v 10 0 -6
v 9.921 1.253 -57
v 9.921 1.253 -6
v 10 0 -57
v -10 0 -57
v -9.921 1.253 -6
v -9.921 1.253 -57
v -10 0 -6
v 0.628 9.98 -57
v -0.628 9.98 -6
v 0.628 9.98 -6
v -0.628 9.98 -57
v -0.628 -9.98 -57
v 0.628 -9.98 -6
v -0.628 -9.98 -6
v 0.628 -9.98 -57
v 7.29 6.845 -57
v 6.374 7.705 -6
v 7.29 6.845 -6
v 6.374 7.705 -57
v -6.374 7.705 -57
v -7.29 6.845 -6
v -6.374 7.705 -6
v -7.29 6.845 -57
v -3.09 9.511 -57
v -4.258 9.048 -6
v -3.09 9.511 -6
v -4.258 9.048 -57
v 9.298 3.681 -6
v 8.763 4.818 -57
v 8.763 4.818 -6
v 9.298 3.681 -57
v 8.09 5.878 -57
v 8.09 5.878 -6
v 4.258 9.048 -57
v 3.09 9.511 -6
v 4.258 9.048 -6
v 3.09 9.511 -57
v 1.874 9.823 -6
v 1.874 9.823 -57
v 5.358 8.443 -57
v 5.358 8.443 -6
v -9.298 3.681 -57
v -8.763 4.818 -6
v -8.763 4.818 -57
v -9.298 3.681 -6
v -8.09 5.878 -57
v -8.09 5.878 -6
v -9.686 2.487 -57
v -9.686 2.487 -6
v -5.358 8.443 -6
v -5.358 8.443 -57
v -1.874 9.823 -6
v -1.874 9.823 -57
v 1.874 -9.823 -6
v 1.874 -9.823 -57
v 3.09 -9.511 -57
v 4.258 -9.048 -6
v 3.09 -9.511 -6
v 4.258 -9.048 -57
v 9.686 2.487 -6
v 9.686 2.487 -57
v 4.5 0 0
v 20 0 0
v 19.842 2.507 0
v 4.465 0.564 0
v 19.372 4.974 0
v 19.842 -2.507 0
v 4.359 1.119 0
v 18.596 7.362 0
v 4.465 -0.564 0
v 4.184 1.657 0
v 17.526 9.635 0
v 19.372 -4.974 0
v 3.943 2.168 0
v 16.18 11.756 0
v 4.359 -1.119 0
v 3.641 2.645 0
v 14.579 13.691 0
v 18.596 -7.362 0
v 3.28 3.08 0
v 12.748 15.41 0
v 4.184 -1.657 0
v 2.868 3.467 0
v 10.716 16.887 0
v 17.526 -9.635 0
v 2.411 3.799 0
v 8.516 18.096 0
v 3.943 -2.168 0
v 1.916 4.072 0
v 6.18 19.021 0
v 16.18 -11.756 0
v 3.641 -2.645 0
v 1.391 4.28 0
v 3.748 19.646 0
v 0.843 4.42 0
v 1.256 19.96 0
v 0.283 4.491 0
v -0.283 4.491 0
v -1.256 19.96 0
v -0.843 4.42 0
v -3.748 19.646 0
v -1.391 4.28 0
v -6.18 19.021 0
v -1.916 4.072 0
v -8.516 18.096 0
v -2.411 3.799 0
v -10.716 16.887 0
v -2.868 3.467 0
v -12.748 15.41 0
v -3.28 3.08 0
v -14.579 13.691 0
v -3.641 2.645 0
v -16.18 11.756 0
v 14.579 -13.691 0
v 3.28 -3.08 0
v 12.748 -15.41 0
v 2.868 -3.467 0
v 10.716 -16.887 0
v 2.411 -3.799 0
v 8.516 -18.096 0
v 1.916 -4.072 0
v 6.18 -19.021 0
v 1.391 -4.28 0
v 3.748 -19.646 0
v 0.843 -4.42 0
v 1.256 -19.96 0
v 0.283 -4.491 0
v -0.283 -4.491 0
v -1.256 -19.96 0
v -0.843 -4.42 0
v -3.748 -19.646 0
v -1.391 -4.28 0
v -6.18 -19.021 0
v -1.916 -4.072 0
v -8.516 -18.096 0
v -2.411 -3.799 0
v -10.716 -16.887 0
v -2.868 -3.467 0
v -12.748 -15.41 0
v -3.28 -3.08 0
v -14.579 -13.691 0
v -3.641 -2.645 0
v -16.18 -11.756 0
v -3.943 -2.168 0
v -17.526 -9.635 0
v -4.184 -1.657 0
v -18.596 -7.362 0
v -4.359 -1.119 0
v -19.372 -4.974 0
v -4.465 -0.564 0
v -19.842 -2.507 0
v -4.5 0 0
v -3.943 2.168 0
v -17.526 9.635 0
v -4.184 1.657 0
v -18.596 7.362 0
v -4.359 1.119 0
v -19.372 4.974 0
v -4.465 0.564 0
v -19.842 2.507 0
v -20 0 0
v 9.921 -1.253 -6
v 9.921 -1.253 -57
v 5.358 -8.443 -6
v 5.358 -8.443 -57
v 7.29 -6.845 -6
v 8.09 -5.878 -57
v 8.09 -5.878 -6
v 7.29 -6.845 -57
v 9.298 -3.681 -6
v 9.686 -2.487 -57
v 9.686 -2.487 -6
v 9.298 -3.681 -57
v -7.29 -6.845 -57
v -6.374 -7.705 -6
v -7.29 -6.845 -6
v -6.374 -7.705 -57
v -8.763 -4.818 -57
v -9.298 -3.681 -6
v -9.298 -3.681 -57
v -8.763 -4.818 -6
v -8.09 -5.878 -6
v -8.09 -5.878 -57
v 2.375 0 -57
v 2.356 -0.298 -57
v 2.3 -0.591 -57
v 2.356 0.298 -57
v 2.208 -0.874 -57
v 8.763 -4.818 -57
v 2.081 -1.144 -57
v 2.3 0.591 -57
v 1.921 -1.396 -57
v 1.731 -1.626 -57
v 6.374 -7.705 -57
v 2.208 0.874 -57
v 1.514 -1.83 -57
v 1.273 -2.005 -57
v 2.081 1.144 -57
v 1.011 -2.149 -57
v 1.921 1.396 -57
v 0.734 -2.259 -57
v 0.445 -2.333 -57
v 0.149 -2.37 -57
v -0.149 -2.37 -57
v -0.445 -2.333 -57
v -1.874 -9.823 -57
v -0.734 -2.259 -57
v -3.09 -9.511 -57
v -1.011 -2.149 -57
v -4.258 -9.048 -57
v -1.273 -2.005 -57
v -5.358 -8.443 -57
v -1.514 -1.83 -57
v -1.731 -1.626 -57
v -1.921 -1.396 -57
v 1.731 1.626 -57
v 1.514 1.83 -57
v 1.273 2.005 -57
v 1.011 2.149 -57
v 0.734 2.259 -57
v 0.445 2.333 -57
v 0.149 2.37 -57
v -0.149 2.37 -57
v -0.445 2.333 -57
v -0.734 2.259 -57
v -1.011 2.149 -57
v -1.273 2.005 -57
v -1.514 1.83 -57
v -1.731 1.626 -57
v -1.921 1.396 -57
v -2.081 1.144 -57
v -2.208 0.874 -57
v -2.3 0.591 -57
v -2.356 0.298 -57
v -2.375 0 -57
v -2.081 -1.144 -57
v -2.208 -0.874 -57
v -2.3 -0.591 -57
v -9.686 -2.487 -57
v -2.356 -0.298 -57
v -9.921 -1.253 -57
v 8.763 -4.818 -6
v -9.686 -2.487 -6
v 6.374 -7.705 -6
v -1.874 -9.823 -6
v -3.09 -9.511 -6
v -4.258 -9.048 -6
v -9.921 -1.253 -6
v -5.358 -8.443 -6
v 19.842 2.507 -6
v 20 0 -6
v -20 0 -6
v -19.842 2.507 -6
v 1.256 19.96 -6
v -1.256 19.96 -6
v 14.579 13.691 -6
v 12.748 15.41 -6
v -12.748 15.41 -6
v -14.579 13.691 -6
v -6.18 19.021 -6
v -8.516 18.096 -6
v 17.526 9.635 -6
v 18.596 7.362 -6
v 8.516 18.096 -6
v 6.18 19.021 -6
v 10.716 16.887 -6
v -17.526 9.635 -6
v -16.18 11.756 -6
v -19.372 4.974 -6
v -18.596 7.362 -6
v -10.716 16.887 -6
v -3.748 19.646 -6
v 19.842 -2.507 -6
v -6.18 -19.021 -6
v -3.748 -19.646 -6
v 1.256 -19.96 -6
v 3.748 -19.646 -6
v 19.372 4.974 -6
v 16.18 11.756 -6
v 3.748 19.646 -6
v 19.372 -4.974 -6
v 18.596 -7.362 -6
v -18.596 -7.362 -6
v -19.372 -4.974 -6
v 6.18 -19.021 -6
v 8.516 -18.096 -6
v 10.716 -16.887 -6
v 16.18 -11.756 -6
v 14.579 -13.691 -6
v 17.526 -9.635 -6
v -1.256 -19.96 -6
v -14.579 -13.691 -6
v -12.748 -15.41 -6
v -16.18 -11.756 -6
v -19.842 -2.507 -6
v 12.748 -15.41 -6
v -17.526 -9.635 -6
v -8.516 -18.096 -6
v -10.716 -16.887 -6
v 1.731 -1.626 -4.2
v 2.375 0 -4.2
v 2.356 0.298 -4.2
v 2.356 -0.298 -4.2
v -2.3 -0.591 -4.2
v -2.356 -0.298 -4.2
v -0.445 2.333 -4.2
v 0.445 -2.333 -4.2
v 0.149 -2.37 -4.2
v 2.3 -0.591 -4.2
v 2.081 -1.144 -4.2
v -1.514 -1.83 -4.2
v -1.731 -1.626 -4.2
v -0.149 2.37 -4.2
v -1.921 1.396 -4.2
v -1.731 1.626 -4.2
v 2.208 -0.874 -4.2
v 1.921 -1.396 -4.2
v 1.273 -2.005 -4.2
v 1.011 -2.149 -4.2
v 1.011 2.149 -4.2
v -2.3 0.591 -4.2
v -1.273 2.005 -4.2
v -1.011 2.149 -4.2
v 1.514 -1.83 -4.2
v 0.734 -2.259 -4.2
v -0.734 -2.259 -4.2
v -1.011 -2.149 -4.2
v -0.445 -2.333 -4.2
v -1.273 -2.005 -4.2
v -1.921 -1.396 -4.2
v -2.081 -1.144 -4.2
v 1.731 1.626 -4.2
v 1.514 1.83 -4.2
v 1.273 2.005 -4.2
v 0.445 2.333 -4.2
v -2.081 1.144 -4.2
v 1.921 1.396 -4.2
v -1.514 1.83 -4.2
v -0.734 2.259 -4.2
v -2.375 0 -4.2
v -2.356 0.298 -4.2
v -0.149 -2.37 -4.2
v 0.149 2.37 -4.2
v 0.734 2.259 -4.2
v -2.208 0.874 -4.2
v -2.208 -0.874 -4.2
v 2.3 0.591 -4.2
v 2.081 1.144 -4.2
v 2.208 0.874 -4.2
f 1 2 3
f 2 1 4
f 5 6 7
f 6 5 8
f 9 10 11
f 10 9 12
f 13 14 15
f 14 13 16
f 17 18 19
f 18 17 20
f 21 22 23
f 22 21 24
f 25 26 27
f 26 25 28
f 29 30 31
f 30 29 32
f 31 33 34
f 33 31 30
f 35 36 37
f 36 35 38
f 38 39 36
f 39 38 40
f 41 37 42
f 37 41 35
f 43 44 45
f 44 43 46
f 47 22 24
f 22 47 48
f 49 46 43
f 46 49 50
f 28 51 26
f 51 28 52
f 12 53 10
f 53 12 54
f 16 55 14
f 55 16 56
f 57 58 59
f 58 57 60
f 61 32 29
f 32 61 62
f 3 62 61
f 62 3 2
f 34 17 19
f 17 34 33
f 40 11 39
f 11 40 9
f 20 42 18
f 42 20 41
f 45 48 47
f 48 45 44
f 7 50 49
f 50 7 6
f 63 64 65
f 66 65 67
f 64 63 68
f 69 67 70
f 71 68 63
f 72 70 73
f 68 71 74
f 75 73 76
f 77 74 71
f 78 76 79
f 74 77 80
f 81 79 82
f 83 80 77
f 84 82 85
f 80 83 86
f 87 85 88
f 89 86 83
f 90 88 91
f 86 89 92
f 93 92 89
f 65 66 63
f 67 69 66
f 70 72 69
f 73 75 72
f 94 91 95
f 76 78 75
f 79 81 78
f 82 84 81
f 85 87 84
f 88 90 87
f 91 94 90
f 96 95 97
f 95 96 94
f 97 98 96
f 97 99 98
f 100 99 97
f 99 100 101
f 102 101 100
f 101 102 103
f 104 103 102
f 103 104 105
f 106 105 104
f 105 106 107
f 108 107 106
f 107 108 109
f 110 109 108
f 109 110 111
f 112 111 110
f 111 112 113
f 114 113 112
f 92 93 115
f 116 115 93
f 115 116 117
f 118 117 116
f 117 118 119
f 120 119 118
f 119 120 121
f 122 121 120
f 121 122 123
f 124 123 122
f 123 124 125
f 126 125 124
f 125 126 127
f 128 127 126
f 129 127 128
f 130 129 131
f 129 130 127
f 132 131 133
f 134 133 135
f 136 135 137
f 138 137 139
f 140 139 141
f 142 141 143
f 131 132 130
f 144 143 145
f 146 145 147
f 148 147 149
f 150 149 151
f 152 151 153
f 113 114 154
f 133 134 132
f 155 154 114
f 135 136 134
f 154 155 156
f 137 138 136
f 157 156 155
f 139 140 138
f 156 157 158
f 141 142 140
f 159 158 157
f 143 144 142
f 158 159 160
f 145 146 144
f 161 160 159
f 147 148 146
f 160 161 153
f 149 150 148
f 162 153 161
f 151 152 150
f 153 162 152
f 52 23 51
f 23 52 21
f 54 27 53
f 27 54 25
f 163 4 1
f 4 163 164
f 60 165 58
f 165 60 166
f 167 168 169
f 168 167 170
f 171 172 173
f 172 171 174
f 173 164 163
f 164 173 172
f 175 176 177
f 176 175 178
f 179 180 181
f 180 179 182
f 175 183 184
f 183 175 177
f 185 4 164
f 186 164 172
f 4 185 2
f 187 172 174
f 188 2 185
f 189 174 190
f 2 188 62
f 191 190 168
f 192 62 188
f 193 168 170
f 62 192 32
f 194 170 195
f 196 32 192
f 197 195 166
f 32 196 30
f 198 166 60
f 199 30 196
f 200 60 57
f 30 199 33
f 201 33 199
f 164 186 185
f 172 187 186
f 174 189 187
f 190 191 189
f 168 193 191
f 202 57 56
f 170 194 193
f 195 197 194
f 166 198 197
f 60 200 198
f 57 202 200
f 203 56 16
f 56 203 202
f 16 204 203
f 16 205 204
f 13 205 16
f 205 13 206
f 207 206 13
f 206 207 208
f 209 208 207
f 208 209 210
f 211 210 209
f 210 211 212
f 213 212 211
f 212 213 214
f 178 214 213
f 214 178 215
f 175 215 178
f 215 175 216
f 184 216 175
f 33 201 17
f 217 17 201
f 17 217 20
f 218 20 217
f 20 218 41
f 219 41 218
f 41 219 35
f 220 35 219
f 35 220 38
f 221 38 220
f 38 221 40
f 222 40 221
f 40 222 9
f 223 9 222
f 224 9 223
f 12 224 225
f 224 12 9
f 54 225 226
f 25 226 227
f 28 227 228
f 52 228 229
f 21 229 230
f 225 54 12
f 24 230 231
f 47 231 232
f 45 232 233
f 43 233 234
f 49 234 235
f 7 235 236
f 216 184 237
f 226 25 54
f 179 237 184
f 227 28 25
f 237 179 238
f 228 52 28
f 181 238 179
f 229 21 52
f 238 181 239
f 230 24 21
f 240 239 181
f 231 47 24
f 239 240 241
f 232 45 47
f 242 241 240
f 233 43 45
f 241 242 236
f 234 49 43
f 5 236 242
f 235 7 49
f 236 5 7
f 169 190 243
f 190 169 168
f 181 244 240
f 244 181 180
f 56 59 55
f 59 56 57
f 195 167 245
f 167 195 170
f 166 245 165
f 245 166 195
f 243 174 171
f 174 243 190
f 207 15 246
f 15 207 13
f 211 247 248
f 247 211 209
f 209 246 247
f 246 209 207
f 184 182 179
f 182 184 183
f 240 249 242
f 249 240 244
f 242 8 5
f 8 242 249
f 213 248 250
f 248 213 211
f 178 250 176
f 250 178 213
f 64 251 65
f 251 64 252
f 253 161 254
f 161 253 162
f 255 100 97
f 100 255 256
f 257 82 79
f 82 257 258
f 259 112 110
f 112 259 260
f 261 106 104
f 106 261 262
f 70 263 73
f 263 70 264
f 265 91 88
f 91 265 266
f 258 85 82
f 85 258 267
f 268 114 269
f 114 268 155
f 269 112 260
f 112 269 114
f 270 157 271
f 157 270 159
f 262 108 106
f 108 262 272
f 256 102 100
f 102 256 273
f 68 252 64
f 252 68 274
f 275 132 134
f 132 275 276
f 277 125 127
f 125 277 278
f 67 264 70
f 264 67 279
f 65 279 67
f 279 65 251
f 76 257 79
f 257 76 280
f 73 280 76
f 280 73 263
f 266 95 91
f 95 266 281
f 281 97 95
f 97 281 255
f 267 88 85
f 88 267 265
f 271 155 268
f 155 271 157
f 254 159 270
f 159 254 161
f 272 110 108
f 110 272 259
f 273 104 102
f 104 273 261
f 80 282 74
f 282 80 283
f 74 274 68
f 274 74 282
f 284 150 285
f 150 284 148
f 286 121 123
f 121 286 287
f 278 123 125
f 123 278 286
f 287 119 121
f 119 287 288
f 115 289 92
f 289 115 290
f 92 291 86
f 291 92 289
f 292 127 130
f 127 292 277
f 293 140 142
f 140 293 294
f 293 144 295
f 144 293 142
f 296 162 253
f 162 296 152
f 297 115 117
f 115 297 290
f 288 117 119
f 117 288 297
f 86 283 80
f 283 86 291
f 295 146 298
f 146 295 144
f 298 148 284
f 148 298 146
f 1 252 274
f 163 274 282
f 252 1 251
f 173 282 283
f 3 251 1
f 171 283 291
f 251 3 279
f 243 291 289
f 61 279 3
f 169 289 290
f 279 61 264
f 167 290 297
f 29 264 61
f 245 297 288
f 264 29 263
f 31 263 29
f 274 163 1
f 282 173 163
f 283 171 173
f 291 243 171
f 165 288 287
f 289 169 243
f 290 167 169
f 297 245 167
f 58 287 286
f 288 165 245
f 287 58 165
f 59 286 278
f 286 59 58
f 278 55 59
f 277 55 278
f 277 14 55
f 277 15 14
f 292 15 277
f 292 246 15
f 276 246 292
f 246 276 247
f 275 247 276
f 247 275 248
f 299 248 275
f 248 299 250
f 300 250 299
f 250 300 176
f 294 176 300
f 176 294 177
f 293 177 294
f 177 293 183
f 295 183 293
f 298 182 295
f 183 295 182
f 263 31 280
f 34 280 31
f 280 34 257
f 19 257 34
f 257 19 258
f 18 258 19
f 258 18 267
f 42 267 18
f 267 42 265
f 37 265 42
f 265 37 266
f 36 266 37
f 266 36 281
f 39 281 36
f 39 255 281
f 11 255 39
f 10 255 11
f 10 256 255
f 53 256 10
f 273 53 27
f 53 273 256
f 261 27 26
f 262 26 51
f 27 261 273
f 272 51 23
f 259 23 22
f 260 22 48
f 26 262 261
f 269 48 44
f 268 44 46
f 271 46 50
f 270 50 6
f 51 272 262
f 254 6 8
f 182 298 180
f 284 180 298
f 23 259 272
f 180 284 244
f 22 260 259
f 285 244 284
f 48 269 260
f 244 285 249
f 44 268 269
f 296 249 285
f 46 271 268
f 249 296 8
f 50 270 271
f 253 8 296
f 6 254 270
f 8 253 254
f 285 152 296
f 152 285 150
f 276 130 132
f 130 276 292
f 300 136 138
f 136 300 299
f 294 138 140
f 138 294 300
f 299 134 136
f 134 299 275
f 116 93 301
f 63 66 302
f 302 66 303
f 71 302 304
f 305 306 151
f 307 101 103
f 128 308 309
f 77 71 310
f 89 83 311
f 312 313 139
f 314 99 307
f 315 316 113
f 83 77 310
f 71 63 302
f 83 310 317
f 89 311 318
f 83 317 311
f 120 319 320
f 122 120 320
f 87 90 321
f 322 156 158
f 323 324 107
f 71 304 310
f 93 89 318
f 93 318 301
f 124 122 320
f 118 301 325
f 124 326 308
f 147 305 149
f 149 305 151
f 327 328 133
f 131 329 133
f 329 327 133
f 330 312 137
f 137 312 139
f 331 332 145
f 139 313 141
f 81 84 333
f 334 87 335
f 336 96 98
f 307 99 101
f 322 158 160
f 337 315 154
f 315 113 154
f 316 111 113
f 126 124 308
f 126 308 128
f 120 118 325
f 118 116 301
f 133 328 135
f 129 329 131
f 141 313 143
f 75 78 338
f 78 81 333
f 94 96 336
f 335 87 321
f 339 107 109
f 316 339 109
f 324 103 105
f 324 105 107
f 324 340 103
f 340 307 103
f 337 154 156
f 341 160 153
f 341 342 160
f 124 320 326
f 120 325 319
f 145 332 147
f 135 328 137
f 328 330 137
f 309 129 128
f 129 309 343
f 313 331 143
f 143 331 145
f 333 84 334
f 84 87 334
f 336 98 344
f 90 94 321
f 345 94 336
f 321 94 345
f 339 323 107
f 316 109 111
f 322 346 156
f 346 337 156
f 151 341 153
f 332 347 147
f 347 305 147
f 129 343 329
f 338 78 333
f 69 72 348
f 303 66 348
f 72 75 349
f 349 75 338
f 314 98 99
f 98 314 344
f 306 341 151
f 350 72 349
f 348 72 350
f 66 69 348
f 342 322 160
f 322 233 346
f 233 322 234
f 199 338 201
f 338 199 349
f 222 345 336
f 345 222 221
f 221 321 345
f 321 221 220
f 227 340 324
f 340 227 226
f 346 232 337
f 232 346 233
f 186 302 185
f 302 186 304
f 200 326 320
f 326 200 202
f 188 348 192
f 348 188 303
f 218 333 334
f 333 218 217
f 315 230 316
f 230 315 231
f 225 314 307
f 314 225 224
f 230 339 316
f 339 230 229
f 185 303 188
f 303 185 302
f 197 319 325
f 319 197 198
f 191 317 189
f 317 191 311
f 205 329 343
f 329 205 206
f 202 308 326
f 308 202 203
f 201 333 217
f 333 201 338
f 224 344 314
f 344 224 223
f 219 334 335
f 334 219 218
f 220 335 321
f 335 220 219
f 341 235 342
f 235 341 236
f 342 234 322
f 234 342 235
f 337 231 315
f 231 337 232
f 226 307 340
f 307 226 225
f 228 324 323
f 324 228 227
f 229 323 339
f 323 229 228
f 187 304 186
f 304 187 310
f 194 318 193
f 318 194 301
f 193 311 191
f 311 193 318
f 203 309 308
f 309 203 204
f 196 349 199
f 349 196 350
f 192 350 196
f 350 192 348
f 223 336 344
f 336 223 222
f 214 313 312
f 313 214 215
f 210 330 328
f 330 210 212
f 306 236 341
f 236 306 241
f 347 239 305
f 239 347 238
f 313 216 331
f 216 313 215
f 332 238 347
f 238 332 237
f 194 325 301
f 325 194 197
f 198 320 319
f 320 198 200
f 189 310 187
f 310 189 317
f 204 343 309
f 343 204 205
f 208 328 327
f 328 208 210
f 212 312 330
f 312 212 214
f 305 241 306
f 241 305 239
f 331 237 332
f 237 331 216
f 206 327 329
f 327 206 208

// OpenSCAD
$fn = 50;


difference() {
	union() {
		translate(v = [0, 0, -57.0000000000]) {
			cylinder(h = 57, r = 10.0000000000);
		}
		translate(v = [0, 0, -6.0000000000]) {
			cylinder(h = 6, r = 20.0000000000);
		}
	}
	union() {
		translate(v = [0, 0, 0]) {
			rotate(a = [0, 0, 0]) {
				difference() {
					union() {
						#translate(v = [0, 0, -57.0000000000]) {
							cylinder(h = 57, r = 2.2500000000);
						}
						#translate(v = [0, 0, -4.2000000000]) {
							cylinder(h = 4.2000000000, r = 10.0000000000, r1 = 2.3750000000, r2 = 4.5000000000);
						}
						#translate(v = [0, 0, -57.0000000000]) {
							cylinder(h = 57, r = 2.3750000000);
						}
						#translate(v = [0, 0, -57.0000000000]) {
							cylinder(h = 57, r = 2.2500000000);
						}
					}
					union();
				}
			}
		}
	}
}
